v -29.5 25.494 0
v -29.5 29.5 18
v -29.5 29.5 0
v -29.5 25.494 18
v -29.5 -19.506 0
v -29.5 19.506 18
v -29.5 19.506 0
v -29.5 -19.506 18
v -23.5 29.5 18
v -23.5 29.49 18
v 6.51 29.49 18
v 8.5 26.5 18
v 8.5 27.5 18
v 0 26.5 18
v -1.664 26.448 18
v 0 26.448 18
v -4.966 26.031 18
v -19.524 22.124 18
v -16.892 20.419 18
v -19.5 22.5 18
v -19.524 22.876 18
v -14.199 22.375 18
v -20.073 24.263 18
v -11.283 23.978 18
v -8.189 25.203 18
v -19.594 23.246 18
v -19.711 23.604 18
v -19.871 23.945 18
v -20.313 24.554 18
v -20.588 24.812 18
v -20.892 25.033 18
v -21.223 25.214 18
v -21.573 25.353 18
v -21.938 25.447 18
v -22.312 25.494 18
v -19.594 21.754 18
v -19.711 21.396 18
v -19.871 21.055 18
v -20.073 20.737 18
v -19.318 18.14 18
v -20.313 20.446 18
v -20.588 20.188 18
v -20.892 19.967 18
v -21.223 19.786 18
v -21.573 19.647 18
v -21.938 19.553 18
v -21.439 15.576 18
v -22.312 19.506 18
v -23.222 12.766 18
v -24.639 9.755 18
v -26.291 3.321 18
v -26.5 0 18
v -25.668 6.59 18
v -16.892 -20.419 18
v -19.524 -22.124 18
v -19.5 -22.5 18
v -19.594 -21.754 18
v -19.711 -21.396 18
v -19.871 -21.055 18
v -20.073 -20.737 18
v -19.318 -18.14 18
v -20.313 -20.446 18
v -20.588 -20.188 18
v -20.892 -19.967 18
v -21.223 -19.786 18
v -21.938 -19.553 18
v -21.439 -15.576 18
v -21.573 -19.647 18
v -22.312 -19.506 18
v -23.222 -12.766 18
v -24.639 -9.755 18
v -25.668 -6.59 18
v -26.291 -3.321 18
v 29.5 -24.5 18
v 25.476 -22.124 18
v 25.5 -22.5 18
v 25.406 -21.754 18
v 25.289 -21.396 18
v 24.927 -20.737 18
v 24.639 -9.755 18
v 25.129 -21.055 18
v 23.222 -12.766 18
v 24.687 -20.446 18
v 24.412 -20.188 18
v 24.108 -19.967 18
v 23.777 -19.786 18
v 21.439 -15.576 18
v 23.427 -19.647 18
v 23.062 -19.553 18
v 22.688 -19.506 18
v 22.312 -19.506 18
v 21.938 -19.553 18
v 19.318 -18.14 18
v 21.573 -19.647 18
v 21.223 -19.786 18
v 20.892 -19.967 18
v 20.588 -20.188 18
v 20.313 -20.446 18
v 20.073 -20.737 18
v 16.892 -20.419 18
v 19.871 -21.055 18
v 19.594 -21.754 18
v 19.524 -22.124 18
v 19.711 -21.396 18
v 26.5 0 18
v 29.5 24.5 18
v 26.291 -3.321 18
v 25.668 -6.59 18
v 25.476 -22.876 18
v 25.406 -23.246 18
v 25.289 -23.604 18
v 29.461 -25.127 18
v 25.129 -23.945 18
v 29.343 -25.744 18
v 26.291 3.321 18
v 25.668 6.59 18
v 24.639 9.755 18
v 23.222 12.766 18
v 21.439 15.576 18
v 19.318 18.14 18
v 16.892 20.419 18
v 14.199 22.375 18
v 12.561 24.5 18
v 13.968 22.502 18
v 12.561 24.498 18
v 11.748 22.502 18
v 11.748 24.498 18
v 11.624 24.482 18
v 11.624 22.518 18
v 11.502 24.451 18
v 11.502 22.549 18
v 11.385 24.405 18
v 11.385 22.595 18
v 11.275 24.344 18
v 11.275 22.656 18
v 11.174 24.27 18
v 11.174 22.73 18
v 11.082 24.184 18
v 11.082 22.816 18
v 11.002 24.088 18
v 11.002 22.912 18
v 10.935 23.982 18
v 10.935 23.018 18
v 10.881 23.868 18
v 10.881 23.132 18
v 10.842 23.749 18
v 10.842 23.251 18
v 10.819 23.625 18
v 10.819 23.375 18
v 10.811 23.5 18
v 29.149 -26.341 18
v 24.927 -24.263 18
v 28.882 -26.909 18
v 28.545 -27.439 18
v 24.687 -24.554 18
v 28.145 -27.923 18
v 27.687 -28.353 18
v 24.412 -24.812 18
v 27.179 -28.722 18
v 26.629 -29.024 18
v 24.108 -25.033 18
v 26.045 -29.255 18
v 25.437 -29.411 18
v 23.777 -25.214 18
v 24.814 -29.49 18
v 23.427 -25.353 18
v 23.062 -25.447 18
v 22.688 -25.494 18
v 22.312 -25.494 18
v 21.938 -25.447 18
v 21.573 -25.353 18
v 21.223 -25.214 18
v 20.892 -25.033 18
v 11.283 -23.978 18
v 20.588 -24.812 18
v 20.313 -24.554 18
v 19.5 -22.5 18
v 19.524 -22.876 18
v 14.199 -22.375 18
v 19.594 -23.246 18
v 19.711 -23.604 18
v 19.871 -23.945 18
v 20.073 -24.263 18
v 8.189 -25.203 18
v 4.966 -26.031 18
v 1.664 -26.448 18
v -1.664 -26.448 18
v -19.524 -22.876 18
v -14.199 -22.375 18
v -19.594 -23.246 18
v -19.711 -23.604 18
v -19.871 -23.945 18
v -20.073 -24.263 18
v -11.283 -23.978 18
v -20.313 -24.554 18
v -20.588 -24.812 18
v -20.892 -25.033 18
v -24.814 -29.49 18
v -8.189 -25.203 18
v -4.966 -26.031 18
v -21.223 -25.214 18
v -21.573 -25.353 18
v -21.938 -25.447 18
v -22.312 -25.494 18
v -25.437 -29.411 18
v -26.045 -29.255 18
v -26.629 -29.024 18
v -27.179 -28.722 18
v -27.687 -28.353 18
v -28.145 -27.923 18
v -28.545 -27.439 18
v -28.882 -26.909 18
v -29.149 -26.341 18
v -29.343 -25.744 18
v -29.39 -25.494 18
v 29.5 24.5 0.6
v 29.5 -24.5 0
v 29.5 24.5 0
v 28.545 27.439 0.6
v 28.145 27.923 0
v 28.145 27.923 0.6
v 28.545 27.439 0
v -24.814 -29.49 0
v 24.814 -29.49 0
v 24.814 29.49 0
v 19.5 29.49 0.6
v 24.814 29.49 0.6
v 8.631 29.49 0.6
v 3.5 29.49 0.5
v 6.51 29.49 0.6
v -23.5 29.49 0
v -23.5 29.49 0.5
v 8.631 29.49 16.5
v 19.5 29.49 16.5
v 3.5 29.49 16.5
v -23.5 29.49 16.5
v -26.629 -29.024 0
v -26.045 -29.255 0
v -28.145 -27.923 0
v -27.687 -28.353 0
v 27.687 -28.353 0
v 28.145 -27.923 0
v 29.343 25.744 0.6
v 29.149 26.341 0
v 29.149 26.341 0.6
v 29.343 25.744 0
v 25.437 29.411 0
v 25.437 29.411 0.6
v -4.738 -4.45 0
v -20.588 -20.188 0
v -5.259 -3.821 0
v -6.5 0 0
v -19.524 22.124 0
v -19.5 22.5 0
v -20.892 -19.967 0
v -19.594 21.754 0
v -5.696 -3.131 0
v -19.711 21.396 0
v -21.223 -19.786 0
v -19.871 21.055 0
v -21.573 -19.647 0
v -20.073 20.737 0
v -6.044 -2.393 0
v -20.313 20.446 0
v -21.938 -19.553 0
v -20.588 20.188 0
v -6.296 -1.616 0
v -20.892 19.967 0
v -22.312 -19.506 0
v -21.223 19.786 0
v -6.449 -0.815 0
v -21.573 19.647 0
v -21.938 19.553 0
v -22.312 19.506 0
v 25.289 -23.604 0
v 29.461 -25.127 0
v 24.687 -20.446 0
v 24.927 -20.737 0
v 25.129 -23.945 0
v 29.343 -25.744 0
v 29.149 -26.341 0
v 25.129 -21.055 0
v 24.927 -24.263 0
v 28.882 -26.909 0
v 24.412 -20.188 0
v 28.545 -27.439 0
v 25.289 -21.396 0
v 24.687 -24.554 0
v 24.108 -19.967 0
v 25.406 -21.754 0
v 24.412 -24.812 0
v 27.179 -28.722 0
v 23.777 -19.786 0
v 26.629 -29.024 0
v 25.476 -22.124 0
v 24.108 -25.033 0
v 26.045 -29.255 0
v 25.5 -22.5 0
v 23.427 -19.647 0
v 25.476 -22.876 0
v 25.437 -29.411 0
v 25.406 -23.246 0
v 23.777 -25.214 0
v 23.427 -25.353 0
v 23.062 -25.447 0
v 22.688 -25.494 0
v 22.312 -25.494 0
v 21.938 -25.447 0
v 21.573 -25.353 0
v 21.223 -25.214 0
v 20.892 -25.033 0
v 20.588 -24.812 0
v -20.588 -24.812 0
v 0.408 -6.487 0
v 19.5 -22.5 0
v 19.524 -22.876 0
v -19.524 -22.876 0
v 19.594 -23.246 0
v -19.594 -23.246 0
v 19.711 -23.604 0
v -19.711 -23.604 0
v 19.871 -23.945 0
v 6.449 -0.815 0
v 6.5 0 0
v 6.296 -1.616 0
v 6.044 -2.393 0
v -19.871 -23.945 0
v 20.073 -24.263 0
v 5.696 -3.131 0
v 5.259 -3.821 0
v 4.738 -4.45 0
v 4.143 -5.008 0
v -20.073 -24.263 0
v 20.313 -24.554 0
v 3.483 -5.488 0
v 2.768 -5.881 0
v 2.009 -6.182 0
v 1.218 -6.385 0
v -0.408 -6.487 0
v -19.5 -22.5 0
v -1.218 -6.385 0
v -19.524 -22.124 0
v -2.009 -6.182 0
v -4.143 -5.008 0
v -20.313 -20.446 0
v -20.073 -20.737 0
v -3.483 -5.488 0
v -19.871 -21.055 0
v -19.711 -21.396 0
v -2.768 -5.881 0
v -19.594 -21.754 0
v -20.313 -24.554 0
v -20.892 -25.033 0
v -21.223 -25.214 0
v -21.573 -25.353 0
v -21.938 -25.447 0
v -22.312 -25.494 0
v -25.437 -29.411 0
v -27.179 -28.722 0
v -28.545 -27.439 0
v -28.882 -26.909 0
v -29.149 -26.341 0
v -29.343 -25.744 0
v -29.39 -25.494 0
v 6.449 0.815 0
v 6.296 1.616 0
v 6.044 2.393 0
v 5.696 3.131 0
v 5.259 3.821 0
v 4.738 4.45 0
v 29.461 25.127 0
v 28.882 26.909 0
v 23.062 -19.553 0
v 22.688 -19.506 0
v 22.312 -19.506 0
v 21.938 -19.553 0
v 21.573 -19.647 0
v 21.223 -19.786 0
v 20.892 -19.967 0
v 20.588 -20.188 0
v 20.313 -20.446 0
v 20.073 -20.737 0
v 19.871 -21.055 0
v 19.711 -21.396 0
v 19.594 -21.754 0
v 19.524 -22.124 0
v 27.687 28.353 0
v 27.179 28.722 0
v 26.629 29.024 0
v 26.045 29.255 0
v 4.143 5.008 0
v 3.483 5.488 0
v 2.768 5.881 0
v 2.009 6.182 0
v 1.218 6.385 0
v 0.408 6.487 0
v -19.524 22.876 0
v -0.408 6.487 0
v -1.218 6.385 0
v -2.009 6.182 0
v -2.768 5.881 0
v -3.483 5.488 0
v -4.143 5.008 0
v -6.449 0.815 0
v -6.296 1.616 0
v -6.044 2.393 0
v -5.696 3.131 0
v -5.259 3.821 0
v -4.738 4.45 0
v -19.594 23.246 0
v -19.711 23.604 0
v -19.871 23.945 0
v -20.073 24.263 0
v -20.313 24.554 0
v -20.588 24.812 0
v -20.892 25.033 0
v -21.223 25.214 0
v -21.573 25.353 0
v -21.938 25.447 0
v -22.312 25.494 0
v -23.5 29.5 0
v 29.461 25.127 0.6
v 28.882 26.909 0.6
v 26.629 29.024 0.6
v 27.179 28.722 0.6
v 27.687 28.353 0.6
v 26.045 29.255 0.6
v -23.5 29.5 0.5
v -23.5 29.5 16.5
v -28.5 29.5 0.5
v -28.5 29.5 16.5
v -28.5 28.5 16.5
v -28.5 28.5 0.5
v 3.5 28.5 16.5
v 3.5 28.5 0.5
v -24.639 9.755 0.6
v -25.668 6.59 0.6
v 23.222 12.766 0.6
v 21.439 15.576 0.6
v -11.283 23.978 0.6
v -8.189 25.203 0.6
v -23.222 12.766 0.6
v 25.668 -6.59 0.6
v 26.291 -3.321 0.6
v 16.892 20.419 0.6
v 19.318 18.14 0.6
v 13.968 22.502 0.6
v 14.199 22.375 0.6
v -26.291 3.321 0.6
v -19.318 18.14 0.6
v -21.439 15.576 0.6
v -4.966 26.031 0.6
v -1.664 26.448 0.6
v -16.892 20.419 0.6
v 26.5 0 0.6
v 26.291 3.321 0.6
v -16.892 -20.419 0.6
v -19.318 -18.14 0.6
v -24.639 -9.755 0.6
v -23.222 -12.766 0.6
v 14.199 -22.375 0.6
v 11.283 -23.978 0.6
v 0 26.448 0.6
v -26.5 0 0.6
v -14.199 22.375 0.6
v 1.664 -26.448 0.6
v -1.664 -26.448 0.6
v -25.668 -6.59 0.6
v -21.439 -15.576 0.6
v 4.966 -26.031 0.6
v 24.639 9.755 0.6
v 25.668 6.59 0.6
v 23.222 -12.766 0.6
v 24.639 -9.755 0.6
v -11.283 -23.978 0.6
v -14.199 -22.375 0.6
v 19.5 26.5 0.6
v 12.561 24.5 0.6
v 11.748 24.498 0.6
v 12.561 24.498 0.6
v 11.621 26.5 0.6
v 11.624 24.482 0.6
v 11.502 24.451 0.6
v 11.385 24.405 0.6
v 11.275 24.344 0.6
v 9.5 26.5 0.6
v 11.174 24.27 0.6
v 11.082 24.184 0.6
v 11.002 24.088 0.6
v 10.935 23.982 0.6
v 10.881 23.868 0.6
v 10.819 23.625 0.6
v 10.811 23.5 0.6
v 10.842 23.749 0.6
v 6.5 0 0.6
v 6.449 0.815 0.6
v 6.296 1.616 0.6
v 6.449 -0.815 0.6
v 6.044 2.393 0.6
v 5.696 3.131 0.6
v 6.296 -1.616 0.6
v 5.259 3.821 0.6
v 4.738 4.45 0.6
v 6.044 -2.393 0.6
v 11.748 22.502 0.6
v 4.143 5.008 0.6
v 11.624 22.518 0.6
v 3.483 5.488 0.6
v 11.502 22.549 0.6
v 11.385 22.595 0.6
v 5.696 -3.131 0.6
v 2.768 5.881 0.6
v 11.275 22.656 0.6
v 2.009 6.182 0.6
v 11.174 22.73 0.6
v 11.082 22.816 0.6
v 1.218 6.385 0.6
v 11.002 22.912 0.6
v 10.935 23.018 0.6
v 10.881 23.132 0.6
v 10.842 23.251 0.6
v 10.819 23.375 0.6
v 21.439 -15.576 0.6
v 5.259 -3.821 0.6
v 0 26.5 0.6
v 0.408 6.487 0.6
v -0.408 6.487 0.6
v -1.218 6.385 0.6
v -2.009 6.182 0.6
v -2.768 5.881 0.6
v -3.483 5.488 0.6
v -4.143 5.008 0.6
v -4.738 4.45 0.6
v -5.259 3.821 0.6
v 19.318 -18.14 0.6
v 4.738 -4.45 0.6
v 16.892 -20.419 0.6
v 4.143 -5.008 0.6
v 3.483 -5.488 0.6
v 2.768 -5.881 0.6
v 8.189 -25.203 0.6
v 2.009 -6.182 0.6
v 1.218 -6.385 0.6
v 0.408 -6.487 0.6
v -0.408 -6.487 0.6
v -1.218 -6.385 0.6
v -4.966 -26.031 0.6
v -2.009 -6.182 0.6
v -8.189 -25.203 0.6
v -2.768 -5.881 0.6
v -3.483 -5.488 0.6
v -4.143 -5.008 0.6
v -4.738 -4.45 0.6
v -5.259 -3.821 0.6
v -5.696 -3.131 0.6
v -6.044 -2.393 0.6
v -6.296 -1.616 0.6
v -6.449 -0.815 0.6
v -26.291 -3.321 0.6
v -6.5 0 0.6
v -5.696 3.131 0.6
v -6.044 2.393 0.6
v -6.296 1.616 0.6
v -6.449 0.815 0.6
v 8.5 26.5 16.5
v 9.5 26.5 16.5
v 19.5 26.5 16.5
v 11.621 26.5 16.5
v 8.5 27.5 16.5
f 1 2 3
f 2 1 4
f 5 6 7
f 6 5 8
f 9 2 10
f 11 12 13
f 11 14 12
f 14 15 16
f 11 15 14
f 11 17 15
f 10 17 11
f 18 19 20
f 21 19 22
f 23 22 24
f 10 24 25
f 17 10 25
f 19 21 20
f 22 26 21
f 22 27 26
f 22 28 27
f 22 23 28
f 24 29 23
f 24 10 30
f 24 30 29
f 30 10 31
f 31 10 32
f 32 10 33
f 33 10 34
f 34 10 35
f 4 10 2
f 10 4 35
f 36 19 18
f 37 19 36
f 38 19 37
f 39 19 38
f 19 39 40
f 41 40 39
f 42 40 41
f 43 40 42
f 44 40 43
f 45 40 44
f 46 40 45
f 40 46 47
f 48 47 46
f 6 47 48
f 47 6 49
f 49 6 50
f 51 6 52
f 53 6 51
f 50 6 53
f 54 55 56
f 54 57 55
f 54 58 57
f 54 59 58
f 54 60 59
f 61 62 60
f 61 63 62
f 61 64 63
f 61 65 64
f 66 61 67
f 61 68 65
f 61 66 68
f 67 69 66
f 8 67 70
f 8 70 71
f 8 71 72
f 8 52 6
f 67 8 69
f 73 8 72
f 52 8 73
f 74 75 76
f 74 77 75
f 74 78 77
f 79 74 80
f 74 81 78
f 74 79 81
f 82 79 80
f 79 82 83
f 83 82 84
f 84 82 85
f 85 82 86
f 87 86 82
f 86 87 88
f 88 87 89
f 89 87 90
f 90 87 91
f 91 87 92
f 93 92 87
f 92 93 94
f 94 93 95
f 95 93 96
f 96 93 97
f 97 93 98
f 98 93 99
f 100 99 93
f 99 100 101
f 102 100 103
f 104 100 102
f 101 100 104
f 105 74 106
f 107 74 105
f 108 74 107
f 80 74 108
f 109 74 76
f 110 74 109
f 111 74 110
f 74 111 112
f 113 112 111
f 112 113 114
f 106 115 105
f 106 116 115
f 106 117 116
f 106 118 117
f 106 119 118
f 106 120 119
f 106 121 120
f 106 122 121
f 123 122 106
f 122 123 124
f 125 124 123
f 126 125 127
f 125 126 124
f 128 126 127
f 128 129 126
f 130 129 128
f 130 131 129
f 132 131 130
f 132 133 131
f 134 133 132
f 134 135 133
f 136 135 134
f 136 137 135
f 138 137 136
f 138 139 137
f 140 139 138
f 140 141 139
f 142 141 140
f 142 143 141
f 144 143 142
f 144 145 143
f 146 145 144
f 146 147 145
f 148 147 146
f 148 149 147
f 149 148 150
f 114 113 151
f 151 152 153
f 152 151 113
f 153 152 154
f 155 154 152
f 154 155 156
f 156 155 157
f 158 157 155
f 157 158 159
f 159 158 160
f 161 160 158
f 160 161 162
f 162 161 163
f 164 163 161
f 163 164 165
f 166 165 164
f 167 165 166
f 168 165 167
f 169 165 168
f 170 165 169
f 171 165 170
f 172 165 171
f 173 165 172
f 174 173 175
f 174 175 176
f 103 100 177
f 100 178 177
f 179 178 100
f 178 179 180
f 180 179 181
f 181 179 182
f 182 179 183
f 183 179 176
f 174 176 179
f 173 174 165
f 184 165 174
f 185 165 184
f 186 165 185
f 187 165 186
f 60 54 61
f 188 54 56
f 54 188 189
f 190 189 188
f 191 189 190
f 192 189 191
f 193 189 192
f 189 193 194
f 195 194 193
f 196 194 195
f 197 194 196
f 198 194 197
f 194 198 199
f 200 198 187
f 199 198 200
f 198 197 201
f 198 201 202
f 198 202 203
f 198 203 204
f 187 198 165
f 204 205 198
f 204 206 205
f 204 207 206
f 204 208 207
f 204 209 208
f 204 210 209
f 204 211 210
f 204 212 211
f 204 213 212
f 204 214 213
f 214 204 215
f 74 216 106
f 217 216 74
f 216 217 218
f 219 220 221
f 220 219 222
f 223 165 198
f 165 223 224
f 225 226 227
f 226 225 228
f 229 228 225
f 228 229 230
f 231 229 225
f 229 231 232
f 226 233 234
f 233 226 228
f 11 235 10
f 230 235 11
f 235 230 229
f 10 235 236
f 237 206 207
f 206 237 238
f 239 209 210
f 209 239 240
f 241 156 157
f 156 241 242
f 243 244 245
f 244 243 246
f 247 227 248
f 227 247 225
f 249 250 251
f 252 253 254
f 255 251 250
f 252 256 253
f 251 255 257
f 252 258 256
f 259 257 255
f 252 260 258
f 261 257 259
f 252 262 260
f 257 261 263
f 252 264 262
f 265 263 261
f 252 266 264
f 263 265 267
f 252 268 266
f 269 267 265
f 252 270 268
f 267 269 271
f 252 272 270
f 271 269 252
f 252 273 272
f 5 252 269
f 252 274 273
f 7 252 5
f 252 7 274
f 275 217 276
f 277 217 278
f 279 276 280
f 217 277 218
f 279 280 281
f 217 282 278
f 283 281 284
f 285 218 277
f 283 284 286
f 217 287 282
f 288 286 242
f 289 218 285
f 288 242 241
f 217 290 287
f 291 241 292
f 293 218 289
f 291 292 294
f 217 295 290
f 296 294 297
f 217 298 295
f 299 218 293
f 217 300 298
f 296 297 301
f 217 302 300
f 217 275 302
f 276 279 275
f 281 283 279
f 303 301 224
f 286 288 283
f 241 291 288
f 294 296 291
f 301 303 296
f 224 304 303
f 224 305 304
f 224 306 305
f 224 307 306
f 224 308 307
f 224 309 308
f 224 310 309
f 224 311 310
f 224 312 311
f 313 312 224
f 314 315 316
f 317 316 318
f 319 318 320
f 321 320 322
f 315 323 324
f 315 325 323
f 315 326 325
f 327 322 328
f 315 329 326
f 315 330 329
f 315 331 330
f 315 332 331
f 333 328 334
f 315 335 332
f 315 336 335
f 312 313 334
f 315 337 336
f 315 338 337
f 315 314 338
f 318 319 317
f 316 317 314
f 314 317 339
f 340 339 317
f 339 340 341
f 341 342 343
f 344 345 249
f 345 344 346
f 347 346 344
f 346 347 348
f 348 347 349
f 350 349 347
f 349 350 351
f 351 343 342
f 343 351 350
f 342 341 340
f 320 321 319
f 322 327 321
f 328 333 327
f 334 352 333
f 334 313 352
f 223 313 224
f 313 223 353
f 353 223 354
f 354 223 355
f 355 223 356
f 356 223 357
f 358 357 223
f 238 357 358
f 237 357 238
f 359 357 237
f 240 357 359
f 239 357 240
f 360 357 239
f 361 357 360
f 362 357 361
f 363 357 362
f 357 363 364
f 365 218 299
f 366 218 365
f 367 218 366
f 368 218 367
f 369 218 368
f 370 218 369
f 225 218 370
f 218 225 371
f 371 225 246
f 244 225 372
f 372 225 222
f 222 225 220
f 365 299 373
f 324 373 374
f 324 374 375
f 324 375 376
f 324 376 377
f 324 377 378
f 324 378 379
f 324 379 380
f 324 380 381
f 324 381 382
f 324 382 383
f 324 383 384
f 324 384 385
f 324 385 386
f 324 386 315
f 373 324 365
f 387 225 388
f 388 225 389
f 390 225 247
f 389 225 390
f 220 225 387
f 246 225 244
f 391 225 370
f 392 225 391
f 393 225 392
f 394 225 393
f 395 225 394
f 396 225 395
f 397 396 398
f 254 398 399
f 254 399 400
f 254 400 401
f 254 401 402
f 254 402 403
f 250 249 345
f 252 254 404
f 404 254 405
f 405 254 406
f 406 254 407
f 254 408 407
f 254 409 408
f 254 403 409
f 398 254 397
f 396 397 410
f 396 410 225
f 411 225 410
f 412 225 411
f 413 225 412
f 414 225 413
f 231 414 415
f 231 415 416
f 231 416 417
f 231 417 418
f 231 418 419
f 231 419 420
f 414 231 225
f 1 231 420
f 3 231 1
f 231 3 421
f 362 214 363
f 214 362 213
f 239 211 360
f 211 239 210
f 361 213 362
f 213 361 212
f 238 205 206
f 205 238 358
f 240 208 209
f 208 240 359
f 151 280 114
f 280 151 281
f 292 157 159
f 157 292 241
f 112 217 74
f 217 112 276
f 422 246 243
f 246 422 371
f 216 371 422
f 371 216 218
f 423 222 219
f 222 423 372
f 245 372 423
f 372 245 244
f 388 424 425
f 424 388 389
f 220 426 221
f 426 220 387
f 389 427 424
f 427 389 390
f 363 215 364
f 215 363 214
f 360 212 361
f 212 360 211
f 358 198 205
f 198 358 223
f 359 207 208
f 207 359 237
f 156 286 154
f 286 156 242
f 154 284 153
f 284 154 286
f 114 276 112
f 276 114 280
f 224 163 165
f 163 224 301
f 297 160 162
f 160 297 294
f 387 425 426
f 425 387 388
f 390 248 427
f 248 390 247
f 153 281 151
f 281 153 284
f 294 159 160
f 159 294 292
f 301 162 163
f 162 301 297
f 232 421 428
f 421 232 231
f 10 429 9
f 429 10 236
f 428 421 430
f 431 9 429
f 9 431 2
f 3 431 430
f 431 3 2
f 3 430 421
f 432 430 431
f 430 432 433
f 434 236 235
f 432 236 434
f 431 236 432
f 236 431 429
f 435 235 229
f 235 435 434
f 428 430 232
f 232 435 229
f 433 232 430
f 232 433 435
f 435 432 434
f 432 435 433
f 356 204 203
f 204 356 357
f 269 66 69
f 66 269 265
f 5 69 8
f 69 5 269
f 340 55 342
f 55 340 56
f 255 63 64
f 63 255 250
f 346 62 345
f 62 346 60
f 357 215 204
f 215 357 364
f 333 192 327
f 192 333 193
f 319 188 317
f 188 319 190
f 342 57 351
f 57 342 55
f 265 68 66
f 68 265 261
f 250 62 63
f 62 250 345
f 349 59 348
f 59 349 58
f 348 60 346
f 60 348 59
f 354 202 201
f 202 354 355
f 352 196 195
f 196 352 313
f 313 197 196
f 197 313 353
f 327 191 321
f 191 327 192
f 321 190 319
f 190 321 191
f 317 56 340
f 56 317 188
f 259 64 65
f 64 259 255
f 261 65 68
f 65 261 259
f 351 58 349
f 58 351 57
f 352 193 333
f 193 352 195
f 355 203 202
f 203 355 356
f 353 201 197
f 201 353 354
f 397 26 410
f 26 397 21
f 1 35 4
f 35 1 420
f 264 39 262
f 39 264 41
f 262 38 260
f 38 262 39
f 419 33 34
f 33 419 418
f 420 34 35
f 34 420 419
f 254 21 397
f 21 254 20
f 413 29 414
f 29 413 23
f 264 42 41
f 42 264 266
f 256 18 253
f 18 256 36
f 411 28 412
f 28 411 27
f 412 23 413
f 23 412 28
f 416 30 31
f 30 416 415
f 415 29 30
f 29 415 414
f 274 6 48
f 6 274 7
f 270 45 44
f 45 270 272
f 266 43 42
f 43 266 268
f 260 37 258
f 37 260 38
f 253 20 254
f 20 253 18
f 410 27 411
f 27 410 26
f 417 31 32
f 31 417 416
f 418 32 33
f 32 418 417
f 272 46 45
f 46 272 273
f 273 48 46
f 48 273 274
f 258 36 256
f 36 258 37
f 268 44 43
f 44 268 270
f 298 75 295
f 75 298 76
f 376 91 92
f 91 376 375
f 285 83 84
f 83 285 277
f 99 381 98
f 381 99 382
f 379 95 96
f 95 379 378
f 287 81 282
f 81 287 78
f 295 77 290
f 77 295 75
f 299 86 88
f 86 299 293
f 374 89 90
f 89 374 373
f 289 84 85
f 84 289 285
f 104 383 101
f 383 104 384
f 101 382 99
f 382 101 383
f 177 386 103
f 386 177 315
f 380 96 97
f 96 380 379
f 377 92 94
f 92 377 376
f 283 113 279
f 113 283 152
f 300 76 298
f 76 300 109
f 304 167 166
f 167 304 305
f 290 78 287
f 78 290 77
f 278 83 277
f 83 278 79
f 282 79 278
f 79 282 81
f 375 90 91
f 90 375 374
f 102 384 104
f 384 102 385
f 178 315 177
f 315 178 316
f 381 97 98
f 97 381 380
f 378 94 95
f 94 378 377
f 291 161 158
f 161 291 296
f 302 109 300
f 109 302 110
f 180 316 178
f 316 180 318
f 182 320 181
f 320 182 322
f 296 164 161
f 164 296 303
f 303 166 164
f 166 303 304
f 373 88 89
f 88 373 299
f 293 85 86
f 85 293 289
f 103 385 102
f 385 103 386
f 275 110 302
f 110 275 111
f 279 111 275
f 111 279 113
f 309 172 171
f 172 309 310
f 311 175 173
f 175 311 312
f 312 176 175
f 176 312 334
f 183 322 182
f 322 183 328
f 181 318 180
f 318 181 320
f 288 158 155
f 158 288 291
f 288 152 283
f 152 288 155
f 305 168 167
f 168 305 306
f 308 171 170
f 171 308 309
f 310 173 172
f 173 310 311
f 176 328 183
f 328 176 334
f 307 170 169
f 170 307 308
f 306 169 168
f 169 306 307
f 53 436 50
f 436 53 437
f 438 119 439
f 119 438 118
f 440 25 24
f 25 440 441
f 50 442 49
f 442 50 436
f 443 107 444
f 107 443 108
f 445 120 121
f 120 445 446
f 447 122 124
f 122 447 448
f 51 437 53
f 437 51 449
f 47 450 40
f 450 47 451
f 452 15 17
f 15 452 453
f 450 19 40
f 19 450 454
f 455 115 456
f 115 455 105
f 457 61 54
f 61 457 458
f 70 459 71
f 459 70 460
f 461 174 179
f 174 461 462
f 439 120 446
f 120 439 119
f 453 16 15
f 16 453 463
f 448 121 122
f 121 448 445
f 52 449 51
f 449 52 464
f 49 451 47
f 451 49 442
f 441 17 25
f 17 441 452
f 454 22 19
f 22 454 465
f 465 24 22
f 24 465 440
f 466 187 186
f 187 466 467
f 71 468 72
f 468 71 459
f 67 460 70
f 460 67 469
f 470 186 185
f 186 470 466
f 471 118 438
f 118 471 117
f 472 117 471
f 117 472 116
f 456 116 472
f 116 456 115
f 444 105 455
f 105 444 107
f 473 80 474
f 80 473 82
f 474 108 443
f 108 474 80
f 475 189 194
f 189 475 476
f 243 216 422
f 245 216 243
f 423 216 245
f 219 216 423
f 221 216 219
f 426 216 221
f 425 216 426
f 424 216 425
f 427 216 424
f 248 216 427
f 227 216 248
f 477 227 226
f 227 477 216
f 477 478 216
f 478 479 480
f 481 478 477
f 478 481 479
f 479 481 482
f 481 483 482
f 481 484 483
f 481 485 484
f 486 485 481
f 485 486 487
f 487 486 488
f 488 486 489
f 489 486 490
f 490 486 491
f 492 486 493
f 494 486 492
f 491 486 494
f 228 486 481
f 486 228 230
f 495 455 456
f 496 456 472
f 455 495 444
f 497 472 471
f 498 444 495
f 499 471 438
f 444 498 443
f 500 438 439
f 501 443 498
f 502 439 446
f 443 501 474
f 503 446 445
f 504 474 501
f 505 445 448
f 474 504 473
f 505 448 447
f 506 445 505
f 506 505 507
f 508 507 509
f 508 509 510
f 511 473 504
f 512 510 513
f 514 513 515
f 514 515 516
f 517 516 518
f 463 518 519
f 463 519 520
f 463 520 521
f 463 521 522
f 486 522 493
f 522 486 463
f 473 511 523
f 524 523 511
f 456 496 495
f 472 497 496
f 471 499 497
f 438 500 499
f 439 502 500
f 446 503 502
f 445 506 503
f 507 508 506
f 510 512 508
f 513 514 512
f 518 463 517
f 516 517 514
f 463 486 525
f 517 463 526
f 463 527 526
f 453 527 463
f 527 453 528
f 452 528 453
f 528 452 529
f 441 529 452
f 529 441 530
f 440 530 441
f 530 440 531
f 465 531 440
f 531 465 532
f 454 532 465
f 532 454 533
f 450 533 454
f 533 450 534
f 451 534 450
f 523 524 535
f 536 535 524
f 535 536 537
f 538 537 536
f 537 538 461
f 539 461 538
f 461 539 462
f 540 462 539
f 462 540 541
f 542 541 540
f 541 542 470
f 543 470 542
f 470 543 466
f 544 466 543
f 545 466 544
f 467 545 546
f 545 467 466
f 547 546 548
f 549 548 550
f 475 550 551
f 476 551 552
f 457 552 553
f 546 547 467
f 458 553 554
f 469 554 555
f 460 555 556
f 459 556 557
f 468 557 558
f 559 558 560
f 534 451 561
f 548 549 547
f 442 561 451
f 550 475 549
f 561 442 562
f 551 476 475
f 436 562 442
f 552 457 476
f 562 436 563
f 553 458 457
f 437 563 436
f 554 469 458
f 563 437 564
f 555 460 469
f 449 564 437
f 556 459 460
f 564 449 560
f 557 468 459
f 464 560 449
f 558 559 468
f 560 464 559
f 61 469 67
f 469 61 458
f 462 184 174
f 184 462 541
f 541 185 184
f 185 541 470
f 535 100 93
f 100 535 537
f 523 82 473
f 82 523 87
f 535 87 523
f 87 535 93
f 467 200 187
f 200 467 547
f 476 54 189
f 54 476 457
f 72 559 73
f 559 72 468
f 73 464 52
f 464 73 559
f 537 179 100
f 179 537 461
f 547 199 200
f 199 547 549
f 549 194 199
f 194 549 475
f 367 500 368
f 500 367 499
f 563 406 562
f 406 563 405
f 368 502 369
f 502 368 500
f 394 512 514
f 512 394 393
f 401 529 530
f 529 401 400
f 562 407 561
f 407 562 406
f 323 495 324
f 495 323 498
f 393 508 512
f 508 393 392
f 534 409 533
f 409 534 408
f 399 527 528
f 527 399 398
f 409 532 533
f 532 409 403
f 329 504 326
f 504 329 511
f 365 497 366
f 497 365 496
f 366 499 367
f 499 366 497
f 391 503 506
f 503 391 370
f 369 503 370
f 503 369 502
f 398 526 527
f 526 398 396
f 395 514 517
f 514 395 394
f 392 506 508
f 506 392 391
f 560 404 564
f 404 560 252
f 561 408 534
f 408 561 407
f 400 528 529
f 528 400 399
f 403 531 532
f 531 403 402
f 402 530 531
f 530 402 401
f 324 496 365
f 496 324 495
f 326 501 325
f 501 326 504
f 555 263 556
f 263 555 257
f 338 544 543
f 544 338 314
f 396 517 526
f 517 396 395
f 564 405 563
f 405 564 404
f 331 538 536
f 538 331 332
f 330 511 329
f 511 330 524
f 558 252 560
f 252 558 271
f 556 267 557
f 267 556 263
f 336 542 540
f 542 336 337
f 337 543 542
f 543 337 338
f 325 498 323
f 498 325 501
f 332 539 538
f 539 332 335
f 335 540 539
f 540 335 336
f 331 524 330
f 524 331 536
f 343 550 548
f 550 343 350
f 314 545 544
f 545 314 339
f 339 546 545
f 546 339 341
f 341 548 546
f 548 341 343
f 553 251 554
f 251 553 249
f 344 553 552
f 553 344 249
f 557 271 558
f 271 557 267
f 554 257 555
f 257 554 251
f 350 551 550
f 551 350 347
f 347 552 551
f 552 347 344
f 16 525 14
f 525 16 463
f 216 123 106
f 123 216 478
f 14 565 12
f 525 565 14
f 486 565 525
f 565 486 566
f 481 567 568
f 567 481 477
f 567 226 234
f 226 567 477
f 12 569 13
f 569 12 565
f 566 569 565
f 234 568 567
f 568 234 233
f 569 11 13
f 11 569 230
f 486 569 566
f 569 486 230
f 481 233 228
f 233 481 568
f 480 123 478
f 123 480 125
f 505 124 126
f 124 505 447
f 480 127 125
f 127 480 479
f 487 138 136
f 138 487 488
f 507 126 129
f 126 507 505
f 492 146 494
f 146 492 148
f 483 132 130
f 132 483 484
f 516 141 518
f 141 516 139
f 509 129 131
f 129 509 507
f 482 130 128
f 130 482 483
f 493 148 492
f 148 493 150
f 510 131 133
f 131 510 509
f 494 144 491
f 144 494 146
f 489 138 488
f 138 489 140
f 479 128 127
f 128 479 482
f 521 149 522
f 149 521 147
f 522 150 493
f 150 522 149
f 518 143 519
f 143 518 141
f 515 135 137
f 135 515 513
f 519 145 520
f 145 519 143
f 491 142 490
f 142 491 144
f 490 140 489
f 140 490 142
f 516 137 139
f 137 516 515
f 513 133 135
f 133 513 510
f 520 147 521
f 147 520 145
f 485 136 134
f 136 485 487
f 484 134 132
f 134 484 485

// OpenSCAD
$fn = 50;


union() {
	difference() {
		union() {
			translate(v = [0, 0, 0]) {
				rotate(a = [0, 0, 0]) {
					hull() {
						translate(v = [-24.5000000000, 24.5000000000, 0]) {
							rotate(a = [0, 0, 0]) {
								translate(v = [0, 0, 0]) {
									rotate(a = [0, 0, 0]) {
										cylinder(h = 18, r = 5);
									}
								}
							}
						}
						translate(v = [24.5000000000, 24.5000000000, 0]) {
							rotate(a = [0, 0, 0]) {
								translate(v = [0, 0, 0]) {
									rotate(a = [0, 0, 0]) {
										cylinder(h = 18, r = 5);
									}
								}
							}
						}
						translate(v = [-24.5000000000, -24.5000000000, 0]) {
							rotate(a = [0, 0, 0]) {
								translate(v = [0, 0, 0]) {
									rotate(a = [0, 0, 0]) {
										cylinder(h = 18, r = 5);
									}
								}
							}
						}
						translate(v = [24.5000000000, -24.5000000000, 0]) {
							rotate(a = [0, 0, 0]) {
								translate(v = [0, 0, 0]) {
									rotate(a = [0, 0, 0]) {
										cylinder(h = 18, r = 5);
									}
								}
							}
						}
					}
				}
			}
			translate(v = [-29.5000000000, 23.5000000000, 0]) {
				rotate(a = [0, 0, 0]) {
					cube(size = [6, 6, 18]);
				}
			}
		}
		union() {
			#translate(v = [-28.5000000000, 28.5000000000, 0.5000000000]) {
				rotate(a = [0, 0, 0]) {
					cube(size = [32, 1, 16]);
				}
			}
			translate(v = [-30.0000000000, -22.5000000000, -125]) {
				rotate(a = [0, 0, 0]) {
					hull() {
						translate(v = [7.5000000000, 0, 0]) {
							rotate(a = [0, 0, 0]) {
								translate(v = [0, 0, 0]) {
									rotate(a = [0, 0, 0]) {
										cylinder(h = 250, r = 3.0000000000);
									}
								}
							}
						}
						translate(v = [-7.5000000000, 0, 0]) {
							rotate(a = [0, 0, 0]) {
								translate(v = [0, 0, 0]) {
									rotate(a = [0, 0, 0]) {
										cylinder(h = 250, r = 3.0000000000);
									}
								}
							}
						}
					}
				}
			}
			translate(v = [-30.0000000000, 22.5000000000, -125]) {
				rotate(a = [0, 0, 0]) {
					hull() {
						translate(v = [7.5000000000, 0, 0]) {
							rotate(a = [0, 0, 0]) {
								translate(v = [0, 0, 0]) {
									rotate(a = [0, 0, 0]) {
										cylinder(h = 250, r = 3.0000000000);
									}
								}
							}
						}
						translate(v = [-7.5000000000, 0, 0]) {
							rotate(a = [0, 0, 0]) {
								translate(v = [0, 0, 0]) {
									rotate(a = [0, 0, 0]) {
										cylinder(h = 250, r = 3.0000000000);
									}
								}
							}
						}
					}
				}
			}
			translate(v = [22.5000000000, -22.5000000000, -125.0000000000]) {
				rotate(a = [0, 0, 0]) {
					cylinder(h = 250, r = 3.0000000000);
				}
			}
			translate(v = [0, 0, 0.6000000000]) {
				rotate(a = [0, 0, 0]) {
					cylinder(h = 20.4000000000, r = 26.5000000000);
				}
			}
			translate(v = [0, 0, -9.0000000000]) {
				rotate(a = [0, 0, 0]) {
					cylinder(h = 18, r = 6.5000000000);
				}
			}
			translate(v = [0.0000000000, 24.5000000000, 0.6000000000]) {
				rotate(a = [0, 0, 0]) {
					cube(size = [29.5000000000, 2, 20.4000000000]);
				}
			}
			translate(v = [19.5000000000, 24.5000000000, 0.6000000000]) {
				rotate(a = [0, 0, 0]) {
					cube(size = [10, 5, 20.4000000000]);
				}
			}
			translate(v = [8.5000000000, 24.5000000000, 16.5000000000]) {
				rotate(a = [0, 0, 0]) {
					cube(size = [21, 5, 1.5000000000]);
				}
			}
			translate(v = [5.7500000000, 30.2500000000, 0.6000000000]) {
				rotate(a = [0, 0, -45]) {
					cube(size = [7.5000000000, 1.5000000000, 20.4000000000]);
				}
			}
			translate(v = [5.0610000000, 22.5000000000, 0.6000000000]) {
				rotate(a = [0, 0, 0]) {
					cube(size = [7.5000000000, 2, 17.4000000000]);
				}
			}
		}
	}
	union() {
		translate(v = [14.3110000000, 23.5000000000, 0]) {
			rotate(a = [0, 0, 0]) {
				hull() {
					translate(v = [2.5000000000, 0, 0]) {
						rotate(a = [0, 0, 0]) {
							#translate(v = [0, 0, 0]) {
								rotate(a = [0, 0, 0]) {
									cylinder(h = 18, r = 1.0000000000);
								}
							}
						}
					}
					translate(v = [-2.5000000000, 0, 0]) {
						rotate(a = [0, 0, 0]) {
							#translate(v = [0, 0, 0]) {
								rotate(a = [0, 0, 0]) {
									cylinder(h = 18, r = 1.0000000000);
								}
							}
						}
					}
				}
			}
		}
	}
}
